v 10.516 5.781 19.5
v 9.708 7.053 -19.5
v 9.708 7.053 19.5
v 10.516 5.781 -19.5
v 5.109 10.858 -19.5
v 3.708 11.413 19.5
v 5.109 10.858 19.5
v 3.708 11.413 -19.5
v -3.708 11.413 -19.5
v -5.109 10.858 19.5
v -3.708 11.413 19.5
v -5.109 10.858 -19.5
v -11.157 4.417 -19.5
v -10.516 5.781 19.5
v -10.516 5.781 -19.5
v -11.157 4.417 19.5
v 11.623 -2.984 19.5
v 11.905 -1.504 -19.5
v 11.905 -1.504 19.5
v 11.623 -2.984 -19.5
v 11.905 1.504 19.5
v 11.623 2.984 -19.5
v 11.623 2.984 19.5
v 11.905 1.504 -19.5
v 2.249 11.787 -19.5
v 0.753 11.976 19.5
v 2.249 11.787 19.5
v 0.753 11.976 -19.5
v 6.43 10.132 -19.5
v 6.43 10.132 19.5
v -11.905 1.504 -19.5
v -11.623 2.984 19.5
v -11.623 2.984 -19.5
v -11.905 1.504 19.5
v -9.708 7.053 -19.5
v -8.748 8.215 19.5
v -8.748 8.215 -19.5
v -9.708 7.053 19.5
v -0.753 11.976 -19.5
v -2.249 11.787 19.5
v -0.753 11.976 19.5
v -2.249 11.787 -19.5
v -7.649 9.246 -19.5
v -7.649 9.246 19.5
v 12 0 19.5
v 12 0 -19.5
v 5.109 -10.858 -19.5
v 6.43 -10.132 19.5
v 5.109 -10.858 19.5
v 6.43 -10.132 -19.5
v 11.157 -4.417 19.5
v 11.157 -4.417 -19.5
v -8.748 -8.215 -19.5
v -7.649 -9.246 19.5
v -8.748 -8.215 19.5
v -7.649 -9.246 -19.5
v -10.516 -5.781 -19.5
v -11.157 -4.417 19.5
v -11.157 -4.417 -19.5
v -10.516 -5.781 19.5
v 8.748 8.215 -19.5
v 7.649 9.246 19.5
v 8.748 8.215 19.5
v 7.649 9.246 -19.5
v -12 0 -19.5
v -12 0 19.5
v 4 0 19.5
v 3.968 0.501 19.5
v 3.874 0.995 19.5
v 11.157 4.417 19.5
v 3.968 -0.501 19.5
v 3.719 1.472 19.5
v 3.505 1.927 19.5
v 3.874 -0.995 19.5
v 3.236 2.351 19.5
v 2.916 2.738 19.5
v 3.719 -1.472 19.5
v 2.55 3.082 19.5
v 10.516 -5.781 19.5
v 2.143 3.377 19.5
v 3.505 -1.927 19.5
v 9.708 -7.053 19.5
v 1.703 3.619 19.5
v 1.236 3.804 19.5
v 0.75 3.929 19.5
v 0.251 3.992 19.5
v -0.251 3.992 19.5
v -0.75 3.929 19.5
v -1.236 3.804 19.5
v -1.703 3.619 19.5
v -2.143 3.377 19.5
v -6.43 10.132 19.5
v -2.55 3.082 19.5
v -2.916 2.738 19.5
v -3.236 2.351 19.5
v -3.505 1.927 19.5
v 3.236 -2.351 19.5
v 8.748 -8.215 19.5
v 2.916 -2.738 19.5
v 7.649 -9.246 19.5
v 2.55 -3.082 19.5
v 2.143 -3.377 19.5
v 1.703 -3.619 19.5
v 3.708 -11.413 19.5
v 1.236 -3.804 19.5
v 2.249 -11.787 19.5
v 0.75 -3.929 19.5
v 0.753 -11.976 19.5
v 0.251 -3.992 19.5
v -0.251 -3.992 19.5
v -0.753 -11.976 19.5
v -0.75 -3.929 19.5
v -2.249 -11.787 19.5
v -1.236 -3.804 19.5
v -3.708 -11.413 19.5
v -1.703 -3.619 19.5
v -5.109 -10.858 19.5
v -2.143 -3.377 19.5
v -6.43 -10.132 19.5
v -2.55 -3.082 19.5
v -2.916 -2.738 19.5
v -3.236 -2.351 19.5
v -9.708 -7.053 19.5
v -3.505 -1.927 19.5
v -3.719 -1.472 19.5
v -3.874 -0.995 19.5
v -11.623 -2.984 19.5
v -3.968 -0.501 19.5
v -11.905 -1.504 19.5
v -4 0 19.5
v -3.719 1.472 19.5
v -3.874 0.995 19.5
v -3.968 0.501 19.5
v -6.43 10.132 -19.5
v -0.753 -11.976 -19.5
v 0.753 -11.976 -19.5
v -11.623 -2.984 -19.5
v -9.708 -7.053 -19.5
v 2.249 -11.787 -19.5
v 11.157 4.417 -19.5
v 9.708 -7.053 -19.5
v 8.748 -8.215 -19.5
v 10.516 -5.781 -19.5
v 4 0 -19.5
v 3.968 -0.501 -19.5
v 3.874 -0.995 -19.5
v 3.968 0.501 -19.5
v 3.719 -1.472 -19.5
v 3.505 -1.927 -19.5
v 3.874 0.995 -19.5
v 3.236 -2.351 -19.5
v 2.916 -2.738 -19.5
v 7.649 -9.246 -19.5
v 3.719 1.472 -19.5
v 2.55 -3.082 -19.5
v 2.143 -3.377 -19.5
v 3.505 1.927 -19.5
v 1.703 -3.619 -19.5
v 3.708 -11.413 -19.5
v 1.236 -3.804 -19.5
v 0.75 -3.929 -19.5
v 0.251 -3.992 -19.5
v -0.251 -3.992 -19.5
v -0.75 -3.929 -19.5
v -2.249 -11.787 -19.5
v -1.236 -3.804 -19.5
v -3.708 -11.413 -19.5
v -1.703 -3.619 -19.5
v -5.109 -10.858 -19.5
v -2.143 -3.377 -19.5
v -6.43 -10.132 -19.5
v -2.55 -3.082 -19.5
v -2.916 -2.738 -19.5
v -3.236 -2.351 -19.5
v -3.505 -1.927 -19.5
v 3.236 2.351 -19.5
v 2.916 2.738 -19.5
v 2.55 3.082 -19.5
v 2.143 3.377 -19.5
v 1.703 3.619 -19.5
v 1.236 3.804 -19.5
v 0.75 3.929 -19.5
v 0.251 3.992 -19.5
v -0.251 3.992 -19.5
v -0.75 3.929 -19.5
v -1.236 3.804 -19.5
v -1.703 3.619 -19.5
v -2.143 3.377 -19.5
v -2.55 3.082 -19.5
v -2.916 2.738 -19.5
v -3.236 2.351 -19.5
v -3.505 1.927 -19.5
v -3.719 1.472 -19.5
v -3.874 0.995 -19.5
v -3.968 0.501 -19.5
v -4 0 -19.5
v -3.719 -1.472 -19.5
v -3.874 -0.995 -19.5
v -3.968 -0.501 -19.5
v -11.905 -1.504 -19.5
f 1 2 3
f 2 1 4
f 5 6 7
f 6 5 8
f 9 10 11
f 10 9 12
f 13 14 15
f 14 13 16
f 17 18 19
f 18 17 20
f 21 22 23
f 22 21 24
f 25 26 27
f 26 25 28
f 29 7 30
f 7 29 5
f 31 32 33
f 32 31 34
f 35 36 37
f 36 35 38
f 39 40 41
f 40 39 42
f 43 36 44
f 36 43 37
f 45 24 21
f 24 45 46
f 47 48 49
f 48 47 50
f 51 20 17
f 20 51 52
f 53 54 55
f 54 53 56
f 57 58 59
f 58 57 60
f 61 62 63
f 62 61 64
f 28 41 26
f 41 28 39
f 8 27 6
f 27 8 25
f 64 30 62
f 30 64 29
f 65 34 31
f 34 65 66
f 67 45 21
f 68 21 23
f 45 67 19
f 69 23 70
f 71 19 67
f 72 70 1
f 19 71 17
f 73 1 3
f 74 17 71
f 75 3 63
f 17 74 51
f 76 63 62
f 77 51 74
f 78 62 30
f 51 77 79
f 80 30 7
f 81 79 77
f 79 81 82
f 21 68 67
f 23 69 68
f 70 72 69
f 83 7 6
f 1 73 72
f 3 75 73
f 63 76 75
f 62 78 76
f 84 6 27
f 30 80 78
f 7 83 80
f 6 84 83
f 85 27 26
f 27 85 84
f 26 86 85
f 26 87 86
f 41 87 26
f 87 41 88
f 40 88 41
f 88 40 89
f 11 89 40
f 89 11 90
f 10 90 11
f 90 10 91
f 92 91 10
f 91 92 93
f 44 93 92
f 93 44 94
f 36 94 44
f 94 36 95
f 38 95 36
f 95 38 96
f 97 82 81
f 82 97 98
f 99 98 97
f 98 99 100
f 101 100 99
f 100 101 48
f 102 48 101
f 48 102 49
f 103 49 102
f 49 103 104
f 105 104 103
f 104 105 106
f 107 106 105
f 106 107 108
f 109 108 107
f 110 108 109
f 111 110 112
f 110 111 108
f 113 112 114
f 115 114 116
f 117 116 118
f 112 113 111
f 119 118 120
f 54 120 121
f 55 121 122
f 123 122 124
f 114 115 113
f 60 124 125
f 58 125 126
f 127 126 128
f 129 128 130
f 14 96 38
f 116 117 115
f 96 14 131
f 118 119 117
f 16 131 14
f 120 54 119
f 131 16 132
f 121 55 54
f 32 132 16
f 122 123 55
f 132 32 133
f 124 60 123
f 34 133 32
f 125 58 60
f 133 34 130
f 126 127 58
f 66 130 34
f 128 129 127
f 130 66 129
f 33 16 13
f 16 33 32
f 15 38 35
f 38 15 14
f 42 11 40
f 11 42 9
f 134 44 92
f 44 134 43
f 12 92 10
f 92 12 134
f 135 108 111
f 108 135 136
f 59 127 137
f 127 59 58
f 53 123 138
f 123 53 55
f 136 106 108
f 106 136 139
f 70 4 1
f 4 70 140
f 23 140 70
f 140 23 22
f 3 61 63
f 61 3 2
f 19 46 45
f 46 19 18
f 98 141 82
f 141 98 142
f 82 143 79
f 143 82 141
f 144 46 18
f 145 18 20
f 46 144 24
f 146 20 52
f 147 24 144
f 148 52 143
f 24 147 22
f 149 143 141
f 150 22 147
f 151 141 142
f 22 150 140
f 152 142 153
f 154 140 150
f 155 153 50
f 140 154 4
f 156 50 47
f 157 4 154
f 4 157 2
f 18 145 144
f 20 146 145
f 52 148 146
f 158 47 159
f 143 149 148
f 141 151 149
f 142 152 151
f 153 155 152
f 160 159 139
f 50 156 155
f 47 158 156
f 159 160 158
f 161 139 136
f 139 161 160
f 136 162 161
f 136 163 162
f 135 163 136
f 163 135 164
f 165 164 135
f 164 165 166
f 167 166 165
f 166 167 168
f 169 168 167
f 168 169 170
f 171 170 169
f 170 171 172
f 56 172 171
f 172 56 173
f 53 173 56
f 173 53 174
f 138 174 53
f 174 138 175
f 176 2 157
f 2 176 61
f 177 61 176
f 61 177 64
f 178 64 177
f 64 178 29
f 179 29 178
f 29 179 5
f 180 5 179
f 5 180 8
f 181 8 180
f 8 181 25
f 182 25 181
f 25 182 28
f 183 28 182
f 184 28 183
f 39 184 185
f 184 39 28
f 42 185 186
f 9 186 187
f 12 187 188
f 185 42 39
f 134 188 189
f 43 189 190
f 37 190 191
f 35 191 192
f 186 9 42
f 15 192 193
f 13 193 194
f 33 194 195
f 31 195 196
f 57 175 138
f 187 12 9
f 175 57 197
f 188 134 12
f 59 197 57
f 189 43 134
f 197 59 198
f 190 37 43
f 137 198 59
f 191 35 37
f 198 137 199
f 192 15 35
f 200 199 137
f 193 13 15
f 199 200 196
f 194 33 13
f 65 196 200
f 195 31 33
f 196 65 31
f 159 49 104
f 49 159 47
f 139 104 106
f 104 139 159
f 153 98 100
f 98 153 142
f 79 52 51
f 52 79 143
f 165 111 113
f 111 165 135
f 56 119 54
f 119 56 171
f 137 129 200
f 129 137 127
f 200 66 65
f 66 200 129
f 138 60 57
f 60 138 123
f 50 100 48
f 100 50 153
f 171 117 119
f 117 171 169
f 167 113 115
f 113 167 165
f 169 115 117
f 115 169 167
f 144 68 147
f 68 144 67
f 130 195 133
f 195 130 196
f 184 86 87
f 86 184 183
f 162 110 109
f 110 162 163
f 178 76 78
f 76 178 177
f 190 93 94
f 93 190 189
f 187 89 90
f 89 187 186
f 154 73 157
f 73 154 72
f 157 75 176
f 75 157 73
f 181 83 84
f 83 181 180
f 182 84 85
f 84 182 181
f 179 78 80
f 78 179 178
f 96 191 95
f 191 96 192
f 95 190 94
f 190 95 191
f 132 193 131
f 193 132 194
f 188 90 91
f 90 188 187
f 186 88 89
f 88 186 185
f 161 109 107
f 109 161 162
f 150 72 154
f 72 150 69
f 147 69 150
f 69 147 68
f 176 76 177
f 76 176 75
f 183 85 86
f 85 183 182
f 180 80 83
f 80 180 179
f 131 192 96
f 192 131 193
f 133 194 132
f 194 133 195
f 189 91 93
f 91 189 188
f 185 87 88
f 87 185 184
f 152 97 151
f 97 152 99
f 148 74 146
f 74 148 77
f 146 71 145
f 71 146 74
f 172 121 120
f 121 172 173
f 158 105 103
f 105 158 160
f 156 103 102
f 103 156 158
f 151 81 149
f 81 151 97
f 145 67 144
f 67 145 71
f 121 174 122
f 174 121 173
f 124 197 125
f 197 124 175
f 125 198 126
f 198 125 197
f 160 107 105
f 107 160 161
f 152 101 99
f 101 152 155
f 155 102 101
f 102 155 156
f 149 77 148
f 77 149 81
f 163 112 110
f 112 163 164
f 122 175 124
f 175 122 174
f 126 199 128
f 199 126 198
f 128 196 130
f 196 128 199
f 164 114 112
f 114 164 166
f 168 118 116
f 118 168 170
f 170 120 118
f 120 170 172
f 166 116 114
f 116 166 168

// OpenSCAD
$fn = 50;


difference() {
	union() {
		translate(v = [0, 0, -19.5000000000]) {
			cylinder(h = 39, r = 12.0000000000);
		}
	}
	union() {
		translate(v = [0, 0, -100.0000000000]) {
			cylinder(h = 200, r = 4);
		}
	}
}
